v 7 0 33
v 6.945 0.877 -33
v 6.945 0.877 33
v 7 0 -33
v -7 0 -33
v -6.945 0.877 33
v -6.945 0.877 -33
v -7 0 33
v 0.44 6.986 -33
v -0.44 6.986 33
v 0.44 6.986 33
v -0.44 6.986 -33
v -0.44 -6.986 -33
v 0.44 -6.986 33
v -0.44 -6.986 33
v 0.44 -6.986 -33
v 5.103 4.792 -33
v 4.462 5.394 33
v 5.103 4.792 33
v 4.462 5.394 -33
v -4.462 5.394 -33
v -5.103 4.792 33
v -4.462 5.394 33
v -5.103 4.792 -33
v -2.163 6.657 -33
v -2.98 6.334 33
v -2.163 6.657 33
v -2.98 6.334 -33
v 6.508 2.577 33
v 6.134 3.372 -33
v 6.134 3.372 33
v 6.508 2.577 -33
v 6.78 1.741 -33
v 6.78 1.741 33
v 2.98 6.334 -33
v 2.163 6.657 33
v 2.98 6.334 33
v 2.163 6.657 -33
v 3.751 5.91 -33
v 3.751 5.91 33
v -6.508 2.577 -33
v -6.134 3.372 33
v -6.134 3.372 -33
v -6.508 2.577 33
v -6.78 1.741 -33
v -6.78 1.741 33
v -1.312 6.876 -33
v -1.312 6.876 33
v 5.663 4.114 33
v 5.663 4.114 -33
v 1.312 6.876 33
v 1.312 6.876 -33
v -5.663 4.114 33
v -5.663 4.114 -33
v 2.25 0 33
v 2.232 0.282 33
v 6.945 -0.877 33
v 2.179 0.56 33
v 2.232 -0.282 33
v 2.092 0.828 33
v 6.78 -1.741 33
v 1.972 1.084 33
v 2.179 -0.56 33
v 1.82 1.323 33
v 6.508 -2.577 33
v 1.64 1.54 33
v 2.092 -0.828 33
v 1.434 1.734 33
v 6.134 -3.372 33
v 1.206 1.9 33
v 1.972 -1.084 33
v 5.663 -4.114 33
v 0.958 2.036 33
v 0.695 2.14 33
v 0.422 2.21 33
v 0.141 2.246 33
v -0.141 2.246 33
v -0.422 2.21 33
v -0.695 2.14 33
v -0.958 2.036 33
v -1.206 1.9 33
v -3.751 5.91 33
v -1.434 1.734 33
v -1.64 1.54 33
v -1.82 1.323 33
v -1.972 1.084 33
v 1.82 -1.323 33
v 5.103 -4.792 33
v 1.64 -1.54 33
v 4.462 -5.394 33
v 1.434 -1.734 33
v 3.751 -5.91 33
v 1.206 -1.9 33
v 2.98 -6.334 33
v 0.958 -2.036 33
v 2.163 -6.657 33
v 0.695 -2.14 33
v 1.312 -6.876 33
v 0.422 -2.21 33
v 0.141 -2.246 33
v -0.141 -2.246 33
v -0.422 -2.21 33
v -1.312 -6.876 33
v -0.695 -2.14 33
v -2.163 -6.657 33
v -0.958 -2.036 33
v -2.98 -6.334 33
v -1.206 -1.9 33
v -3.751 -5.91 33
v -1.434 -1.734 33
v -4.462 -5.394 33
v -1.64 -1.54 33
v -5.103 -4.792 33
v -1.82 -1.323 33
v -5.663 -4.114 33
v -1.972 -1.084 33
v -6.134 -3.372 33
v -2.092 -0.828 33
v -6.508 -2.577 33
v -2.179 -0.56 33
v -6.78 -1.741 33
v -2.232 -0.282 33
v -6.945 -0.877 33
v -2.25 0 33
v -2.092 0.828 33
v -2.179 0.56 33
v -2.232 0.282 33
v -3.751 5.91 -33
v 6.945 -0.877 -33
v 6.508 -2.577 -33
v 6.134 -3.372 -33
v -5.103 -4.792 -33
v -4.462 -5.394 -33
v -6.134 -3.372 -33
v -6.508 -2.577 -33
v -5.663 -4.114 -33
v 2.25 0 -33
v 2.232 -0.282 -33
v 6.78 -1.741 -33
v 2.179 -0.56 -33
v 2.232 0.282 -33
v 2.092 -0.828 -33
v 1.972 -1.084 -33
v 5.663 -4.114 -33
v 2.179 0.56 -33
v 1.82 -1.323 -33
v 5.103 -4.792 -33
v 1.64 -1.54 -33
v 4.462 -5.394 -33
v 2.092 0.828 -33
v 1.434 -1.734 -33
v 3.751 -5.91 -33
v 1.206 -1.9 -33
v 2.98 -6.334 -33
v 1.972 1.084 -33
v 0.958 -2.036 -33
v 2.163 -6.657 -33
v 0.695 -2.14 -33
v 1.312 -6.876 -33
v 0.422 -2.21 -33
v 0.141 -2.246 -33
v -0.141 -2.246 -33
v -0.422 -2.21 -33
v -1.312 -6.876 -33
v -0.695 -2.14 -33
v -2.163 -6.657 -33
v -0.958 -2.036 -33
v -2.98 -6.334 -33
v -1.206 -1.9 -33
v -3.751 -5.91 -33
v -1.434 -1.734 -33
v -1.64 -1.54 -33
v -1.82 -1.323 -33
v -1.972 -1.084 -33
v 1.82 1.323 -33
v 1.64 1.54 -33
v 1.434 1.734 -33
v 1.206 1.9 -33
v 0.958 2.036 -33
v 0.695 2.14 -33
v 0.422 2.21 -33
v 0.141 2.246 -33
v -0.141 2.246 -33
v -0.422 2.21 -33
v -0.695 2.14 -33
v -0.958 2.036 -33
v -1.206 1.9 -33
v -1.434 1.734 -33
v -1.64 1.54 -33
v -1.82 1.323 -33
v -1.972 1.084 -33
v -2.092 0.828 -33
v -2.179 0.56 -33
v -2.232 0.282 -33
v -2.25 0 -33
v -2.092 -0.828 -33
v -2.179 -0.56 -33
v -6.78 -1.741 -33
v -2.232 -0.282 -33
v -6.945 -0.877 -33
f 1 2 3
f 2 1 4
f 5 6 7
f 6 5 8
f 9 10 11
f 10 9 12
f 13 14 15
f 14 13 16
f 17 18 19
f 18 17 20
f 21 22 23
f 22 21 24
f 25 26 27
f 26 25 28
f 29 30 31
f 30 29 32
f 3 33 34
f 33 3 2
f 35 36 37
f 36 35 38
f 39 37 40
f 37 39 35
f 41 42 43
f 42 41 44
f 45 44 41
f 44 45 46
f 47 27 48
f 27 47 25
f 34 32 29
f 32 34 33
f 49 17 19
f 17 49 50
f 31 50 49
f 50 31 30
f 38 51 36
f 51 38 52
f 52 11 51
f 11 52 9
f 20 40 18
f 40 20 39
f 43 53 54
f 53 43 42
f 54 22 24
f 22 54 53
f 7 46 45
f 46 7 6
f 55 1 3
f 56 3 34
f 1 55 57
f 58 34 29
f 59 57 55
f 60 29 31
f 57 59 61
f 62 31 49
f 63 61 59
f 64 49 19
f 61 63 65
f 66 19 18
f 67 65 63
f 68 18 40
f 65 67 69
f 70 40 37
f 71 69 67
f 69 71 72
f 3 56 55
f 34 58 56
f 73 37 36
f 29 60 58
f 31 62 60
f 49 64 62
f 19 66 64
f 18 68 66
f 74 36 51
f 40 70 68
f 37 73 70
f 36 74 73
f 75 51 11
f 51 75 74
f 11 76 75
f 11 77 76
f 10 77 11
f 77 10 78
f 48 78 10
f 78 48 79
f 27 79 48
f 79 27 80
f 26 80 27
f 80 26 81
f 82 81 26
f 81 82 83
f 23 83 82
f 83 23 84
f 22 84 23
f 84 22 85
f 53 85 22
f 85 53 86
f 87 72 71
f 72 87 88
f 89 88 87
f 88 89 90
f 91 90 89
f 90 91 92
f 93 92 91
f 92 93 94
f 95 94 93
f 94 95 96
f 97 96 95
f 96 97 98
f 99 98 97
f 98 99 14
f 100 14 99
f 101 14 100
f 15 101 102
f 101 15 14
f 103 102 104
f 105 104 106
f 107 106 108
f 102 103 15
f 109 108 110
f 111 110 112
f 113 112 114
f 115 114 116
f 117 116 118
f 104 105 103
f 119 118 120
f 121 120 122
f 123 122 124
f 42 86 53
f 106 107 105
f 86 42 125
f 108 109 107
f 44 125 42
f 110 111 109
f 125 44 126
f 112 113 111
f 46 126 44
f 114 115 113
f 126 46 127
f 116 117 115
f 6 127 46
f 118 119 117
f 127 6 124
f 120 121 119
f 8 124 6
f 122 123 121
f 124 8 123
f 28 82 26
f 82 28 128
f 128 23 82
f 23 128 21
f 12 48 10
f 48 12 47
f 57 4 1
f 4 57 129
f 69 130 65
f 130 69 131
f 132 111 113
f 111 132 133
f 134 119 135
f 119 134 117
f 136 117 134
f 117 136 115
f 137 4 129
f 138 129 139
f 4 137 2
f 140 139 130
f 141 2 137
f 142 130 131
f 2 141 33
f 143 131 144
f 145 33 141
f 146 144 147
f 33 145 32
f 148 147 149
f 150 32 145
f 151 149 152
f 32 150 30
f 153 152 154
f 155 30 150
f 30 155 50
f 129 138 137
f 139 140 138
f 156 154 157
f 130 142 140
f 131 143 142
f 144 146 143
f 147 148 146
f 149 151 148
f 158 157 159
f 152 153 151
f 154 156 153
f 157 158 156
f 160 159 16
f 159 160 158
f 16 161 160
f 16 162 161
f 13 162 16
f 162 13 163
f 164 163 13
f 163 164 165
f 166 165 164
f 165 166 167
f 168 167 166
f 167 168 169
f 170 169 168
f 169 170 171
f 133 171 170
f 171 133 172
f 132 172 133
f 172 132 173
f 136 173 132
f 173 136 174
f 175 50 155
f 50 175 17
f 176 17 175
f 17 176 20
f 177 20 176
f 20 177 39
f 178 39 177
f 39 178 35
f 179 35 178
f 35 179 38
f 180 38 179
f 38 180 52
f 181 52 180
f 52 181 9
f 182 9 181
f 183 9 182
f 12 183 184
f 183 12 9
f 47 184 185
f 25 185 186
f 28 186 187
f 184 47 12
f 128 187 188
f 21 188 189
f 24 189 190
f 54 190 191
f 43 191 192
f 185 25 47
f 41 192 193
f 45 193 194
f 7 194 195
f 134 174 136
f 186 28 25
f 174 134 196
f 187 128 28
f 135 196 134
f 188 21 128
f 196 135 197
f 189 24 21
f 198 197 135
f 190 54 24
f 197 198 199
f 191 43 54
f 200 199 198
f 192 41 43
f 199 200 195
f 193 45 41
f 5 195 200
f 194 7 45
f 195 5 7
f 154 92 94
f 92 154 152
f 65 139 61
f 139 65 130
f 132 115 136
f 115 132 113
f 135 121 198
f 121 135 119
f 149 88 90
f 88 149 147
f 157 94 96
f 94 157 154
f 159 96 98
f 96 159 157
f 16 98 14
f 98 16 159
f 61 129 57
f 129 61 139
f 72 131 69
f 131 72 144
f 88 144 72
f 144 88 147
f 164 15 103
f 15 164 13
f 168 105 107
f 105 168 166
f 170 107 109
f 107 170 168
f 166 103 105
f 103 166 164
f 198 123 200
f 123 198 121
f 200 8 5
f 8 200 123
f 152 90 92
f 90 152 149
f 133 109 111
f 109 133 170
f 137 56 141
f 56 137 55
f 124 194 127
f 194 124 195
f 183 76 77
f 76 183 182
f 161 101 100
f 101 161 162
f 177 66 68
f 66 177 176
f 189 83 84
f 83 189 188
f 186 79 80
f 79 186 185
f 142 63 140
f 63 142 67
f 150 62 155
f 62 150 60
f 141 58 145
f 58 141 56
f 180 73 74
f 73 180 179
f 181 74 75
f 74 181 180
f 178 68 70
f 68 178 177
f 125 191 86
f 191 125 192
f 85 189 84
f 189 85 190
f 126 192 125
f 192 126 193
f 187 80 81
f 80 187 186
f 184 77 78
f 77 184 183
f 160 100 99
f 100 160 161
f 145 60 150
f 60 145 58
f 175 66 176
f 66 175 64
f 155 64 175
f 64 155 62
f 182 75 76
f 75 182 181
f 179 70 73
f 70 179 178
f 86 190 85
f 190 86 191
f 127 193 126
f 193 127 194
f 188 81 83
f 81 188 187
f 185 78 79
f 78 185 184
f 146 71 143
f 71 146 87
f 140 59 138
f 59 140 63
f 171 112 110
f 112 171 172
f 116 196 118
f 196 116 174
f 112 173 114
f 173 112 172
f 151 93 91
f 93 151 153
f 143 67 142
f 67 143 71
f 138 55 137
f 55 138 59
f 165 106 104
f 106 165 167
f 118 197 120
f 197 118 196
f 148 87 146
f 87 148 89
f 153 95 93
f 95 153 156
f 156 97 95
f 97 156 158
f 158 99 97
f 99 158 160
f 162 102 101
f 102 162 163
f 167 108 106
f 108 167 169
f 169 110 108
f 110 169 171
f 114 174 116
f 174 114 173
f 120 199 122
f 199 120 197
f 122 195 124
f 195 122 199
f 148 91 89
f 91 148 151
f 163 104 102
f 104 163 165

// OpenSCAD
$fn = 50;


difference() {
	union() {
		translate(v = [0, 0, -33.0000000000]) {
			cylinder(h = 66, r = 7.0000000000);
		}
	}
	union() {
		translate(v = [0, 0, -100.0000000000]) {
			cylinder(h = 200, r = 2.2500000000);
		}
	}
}
